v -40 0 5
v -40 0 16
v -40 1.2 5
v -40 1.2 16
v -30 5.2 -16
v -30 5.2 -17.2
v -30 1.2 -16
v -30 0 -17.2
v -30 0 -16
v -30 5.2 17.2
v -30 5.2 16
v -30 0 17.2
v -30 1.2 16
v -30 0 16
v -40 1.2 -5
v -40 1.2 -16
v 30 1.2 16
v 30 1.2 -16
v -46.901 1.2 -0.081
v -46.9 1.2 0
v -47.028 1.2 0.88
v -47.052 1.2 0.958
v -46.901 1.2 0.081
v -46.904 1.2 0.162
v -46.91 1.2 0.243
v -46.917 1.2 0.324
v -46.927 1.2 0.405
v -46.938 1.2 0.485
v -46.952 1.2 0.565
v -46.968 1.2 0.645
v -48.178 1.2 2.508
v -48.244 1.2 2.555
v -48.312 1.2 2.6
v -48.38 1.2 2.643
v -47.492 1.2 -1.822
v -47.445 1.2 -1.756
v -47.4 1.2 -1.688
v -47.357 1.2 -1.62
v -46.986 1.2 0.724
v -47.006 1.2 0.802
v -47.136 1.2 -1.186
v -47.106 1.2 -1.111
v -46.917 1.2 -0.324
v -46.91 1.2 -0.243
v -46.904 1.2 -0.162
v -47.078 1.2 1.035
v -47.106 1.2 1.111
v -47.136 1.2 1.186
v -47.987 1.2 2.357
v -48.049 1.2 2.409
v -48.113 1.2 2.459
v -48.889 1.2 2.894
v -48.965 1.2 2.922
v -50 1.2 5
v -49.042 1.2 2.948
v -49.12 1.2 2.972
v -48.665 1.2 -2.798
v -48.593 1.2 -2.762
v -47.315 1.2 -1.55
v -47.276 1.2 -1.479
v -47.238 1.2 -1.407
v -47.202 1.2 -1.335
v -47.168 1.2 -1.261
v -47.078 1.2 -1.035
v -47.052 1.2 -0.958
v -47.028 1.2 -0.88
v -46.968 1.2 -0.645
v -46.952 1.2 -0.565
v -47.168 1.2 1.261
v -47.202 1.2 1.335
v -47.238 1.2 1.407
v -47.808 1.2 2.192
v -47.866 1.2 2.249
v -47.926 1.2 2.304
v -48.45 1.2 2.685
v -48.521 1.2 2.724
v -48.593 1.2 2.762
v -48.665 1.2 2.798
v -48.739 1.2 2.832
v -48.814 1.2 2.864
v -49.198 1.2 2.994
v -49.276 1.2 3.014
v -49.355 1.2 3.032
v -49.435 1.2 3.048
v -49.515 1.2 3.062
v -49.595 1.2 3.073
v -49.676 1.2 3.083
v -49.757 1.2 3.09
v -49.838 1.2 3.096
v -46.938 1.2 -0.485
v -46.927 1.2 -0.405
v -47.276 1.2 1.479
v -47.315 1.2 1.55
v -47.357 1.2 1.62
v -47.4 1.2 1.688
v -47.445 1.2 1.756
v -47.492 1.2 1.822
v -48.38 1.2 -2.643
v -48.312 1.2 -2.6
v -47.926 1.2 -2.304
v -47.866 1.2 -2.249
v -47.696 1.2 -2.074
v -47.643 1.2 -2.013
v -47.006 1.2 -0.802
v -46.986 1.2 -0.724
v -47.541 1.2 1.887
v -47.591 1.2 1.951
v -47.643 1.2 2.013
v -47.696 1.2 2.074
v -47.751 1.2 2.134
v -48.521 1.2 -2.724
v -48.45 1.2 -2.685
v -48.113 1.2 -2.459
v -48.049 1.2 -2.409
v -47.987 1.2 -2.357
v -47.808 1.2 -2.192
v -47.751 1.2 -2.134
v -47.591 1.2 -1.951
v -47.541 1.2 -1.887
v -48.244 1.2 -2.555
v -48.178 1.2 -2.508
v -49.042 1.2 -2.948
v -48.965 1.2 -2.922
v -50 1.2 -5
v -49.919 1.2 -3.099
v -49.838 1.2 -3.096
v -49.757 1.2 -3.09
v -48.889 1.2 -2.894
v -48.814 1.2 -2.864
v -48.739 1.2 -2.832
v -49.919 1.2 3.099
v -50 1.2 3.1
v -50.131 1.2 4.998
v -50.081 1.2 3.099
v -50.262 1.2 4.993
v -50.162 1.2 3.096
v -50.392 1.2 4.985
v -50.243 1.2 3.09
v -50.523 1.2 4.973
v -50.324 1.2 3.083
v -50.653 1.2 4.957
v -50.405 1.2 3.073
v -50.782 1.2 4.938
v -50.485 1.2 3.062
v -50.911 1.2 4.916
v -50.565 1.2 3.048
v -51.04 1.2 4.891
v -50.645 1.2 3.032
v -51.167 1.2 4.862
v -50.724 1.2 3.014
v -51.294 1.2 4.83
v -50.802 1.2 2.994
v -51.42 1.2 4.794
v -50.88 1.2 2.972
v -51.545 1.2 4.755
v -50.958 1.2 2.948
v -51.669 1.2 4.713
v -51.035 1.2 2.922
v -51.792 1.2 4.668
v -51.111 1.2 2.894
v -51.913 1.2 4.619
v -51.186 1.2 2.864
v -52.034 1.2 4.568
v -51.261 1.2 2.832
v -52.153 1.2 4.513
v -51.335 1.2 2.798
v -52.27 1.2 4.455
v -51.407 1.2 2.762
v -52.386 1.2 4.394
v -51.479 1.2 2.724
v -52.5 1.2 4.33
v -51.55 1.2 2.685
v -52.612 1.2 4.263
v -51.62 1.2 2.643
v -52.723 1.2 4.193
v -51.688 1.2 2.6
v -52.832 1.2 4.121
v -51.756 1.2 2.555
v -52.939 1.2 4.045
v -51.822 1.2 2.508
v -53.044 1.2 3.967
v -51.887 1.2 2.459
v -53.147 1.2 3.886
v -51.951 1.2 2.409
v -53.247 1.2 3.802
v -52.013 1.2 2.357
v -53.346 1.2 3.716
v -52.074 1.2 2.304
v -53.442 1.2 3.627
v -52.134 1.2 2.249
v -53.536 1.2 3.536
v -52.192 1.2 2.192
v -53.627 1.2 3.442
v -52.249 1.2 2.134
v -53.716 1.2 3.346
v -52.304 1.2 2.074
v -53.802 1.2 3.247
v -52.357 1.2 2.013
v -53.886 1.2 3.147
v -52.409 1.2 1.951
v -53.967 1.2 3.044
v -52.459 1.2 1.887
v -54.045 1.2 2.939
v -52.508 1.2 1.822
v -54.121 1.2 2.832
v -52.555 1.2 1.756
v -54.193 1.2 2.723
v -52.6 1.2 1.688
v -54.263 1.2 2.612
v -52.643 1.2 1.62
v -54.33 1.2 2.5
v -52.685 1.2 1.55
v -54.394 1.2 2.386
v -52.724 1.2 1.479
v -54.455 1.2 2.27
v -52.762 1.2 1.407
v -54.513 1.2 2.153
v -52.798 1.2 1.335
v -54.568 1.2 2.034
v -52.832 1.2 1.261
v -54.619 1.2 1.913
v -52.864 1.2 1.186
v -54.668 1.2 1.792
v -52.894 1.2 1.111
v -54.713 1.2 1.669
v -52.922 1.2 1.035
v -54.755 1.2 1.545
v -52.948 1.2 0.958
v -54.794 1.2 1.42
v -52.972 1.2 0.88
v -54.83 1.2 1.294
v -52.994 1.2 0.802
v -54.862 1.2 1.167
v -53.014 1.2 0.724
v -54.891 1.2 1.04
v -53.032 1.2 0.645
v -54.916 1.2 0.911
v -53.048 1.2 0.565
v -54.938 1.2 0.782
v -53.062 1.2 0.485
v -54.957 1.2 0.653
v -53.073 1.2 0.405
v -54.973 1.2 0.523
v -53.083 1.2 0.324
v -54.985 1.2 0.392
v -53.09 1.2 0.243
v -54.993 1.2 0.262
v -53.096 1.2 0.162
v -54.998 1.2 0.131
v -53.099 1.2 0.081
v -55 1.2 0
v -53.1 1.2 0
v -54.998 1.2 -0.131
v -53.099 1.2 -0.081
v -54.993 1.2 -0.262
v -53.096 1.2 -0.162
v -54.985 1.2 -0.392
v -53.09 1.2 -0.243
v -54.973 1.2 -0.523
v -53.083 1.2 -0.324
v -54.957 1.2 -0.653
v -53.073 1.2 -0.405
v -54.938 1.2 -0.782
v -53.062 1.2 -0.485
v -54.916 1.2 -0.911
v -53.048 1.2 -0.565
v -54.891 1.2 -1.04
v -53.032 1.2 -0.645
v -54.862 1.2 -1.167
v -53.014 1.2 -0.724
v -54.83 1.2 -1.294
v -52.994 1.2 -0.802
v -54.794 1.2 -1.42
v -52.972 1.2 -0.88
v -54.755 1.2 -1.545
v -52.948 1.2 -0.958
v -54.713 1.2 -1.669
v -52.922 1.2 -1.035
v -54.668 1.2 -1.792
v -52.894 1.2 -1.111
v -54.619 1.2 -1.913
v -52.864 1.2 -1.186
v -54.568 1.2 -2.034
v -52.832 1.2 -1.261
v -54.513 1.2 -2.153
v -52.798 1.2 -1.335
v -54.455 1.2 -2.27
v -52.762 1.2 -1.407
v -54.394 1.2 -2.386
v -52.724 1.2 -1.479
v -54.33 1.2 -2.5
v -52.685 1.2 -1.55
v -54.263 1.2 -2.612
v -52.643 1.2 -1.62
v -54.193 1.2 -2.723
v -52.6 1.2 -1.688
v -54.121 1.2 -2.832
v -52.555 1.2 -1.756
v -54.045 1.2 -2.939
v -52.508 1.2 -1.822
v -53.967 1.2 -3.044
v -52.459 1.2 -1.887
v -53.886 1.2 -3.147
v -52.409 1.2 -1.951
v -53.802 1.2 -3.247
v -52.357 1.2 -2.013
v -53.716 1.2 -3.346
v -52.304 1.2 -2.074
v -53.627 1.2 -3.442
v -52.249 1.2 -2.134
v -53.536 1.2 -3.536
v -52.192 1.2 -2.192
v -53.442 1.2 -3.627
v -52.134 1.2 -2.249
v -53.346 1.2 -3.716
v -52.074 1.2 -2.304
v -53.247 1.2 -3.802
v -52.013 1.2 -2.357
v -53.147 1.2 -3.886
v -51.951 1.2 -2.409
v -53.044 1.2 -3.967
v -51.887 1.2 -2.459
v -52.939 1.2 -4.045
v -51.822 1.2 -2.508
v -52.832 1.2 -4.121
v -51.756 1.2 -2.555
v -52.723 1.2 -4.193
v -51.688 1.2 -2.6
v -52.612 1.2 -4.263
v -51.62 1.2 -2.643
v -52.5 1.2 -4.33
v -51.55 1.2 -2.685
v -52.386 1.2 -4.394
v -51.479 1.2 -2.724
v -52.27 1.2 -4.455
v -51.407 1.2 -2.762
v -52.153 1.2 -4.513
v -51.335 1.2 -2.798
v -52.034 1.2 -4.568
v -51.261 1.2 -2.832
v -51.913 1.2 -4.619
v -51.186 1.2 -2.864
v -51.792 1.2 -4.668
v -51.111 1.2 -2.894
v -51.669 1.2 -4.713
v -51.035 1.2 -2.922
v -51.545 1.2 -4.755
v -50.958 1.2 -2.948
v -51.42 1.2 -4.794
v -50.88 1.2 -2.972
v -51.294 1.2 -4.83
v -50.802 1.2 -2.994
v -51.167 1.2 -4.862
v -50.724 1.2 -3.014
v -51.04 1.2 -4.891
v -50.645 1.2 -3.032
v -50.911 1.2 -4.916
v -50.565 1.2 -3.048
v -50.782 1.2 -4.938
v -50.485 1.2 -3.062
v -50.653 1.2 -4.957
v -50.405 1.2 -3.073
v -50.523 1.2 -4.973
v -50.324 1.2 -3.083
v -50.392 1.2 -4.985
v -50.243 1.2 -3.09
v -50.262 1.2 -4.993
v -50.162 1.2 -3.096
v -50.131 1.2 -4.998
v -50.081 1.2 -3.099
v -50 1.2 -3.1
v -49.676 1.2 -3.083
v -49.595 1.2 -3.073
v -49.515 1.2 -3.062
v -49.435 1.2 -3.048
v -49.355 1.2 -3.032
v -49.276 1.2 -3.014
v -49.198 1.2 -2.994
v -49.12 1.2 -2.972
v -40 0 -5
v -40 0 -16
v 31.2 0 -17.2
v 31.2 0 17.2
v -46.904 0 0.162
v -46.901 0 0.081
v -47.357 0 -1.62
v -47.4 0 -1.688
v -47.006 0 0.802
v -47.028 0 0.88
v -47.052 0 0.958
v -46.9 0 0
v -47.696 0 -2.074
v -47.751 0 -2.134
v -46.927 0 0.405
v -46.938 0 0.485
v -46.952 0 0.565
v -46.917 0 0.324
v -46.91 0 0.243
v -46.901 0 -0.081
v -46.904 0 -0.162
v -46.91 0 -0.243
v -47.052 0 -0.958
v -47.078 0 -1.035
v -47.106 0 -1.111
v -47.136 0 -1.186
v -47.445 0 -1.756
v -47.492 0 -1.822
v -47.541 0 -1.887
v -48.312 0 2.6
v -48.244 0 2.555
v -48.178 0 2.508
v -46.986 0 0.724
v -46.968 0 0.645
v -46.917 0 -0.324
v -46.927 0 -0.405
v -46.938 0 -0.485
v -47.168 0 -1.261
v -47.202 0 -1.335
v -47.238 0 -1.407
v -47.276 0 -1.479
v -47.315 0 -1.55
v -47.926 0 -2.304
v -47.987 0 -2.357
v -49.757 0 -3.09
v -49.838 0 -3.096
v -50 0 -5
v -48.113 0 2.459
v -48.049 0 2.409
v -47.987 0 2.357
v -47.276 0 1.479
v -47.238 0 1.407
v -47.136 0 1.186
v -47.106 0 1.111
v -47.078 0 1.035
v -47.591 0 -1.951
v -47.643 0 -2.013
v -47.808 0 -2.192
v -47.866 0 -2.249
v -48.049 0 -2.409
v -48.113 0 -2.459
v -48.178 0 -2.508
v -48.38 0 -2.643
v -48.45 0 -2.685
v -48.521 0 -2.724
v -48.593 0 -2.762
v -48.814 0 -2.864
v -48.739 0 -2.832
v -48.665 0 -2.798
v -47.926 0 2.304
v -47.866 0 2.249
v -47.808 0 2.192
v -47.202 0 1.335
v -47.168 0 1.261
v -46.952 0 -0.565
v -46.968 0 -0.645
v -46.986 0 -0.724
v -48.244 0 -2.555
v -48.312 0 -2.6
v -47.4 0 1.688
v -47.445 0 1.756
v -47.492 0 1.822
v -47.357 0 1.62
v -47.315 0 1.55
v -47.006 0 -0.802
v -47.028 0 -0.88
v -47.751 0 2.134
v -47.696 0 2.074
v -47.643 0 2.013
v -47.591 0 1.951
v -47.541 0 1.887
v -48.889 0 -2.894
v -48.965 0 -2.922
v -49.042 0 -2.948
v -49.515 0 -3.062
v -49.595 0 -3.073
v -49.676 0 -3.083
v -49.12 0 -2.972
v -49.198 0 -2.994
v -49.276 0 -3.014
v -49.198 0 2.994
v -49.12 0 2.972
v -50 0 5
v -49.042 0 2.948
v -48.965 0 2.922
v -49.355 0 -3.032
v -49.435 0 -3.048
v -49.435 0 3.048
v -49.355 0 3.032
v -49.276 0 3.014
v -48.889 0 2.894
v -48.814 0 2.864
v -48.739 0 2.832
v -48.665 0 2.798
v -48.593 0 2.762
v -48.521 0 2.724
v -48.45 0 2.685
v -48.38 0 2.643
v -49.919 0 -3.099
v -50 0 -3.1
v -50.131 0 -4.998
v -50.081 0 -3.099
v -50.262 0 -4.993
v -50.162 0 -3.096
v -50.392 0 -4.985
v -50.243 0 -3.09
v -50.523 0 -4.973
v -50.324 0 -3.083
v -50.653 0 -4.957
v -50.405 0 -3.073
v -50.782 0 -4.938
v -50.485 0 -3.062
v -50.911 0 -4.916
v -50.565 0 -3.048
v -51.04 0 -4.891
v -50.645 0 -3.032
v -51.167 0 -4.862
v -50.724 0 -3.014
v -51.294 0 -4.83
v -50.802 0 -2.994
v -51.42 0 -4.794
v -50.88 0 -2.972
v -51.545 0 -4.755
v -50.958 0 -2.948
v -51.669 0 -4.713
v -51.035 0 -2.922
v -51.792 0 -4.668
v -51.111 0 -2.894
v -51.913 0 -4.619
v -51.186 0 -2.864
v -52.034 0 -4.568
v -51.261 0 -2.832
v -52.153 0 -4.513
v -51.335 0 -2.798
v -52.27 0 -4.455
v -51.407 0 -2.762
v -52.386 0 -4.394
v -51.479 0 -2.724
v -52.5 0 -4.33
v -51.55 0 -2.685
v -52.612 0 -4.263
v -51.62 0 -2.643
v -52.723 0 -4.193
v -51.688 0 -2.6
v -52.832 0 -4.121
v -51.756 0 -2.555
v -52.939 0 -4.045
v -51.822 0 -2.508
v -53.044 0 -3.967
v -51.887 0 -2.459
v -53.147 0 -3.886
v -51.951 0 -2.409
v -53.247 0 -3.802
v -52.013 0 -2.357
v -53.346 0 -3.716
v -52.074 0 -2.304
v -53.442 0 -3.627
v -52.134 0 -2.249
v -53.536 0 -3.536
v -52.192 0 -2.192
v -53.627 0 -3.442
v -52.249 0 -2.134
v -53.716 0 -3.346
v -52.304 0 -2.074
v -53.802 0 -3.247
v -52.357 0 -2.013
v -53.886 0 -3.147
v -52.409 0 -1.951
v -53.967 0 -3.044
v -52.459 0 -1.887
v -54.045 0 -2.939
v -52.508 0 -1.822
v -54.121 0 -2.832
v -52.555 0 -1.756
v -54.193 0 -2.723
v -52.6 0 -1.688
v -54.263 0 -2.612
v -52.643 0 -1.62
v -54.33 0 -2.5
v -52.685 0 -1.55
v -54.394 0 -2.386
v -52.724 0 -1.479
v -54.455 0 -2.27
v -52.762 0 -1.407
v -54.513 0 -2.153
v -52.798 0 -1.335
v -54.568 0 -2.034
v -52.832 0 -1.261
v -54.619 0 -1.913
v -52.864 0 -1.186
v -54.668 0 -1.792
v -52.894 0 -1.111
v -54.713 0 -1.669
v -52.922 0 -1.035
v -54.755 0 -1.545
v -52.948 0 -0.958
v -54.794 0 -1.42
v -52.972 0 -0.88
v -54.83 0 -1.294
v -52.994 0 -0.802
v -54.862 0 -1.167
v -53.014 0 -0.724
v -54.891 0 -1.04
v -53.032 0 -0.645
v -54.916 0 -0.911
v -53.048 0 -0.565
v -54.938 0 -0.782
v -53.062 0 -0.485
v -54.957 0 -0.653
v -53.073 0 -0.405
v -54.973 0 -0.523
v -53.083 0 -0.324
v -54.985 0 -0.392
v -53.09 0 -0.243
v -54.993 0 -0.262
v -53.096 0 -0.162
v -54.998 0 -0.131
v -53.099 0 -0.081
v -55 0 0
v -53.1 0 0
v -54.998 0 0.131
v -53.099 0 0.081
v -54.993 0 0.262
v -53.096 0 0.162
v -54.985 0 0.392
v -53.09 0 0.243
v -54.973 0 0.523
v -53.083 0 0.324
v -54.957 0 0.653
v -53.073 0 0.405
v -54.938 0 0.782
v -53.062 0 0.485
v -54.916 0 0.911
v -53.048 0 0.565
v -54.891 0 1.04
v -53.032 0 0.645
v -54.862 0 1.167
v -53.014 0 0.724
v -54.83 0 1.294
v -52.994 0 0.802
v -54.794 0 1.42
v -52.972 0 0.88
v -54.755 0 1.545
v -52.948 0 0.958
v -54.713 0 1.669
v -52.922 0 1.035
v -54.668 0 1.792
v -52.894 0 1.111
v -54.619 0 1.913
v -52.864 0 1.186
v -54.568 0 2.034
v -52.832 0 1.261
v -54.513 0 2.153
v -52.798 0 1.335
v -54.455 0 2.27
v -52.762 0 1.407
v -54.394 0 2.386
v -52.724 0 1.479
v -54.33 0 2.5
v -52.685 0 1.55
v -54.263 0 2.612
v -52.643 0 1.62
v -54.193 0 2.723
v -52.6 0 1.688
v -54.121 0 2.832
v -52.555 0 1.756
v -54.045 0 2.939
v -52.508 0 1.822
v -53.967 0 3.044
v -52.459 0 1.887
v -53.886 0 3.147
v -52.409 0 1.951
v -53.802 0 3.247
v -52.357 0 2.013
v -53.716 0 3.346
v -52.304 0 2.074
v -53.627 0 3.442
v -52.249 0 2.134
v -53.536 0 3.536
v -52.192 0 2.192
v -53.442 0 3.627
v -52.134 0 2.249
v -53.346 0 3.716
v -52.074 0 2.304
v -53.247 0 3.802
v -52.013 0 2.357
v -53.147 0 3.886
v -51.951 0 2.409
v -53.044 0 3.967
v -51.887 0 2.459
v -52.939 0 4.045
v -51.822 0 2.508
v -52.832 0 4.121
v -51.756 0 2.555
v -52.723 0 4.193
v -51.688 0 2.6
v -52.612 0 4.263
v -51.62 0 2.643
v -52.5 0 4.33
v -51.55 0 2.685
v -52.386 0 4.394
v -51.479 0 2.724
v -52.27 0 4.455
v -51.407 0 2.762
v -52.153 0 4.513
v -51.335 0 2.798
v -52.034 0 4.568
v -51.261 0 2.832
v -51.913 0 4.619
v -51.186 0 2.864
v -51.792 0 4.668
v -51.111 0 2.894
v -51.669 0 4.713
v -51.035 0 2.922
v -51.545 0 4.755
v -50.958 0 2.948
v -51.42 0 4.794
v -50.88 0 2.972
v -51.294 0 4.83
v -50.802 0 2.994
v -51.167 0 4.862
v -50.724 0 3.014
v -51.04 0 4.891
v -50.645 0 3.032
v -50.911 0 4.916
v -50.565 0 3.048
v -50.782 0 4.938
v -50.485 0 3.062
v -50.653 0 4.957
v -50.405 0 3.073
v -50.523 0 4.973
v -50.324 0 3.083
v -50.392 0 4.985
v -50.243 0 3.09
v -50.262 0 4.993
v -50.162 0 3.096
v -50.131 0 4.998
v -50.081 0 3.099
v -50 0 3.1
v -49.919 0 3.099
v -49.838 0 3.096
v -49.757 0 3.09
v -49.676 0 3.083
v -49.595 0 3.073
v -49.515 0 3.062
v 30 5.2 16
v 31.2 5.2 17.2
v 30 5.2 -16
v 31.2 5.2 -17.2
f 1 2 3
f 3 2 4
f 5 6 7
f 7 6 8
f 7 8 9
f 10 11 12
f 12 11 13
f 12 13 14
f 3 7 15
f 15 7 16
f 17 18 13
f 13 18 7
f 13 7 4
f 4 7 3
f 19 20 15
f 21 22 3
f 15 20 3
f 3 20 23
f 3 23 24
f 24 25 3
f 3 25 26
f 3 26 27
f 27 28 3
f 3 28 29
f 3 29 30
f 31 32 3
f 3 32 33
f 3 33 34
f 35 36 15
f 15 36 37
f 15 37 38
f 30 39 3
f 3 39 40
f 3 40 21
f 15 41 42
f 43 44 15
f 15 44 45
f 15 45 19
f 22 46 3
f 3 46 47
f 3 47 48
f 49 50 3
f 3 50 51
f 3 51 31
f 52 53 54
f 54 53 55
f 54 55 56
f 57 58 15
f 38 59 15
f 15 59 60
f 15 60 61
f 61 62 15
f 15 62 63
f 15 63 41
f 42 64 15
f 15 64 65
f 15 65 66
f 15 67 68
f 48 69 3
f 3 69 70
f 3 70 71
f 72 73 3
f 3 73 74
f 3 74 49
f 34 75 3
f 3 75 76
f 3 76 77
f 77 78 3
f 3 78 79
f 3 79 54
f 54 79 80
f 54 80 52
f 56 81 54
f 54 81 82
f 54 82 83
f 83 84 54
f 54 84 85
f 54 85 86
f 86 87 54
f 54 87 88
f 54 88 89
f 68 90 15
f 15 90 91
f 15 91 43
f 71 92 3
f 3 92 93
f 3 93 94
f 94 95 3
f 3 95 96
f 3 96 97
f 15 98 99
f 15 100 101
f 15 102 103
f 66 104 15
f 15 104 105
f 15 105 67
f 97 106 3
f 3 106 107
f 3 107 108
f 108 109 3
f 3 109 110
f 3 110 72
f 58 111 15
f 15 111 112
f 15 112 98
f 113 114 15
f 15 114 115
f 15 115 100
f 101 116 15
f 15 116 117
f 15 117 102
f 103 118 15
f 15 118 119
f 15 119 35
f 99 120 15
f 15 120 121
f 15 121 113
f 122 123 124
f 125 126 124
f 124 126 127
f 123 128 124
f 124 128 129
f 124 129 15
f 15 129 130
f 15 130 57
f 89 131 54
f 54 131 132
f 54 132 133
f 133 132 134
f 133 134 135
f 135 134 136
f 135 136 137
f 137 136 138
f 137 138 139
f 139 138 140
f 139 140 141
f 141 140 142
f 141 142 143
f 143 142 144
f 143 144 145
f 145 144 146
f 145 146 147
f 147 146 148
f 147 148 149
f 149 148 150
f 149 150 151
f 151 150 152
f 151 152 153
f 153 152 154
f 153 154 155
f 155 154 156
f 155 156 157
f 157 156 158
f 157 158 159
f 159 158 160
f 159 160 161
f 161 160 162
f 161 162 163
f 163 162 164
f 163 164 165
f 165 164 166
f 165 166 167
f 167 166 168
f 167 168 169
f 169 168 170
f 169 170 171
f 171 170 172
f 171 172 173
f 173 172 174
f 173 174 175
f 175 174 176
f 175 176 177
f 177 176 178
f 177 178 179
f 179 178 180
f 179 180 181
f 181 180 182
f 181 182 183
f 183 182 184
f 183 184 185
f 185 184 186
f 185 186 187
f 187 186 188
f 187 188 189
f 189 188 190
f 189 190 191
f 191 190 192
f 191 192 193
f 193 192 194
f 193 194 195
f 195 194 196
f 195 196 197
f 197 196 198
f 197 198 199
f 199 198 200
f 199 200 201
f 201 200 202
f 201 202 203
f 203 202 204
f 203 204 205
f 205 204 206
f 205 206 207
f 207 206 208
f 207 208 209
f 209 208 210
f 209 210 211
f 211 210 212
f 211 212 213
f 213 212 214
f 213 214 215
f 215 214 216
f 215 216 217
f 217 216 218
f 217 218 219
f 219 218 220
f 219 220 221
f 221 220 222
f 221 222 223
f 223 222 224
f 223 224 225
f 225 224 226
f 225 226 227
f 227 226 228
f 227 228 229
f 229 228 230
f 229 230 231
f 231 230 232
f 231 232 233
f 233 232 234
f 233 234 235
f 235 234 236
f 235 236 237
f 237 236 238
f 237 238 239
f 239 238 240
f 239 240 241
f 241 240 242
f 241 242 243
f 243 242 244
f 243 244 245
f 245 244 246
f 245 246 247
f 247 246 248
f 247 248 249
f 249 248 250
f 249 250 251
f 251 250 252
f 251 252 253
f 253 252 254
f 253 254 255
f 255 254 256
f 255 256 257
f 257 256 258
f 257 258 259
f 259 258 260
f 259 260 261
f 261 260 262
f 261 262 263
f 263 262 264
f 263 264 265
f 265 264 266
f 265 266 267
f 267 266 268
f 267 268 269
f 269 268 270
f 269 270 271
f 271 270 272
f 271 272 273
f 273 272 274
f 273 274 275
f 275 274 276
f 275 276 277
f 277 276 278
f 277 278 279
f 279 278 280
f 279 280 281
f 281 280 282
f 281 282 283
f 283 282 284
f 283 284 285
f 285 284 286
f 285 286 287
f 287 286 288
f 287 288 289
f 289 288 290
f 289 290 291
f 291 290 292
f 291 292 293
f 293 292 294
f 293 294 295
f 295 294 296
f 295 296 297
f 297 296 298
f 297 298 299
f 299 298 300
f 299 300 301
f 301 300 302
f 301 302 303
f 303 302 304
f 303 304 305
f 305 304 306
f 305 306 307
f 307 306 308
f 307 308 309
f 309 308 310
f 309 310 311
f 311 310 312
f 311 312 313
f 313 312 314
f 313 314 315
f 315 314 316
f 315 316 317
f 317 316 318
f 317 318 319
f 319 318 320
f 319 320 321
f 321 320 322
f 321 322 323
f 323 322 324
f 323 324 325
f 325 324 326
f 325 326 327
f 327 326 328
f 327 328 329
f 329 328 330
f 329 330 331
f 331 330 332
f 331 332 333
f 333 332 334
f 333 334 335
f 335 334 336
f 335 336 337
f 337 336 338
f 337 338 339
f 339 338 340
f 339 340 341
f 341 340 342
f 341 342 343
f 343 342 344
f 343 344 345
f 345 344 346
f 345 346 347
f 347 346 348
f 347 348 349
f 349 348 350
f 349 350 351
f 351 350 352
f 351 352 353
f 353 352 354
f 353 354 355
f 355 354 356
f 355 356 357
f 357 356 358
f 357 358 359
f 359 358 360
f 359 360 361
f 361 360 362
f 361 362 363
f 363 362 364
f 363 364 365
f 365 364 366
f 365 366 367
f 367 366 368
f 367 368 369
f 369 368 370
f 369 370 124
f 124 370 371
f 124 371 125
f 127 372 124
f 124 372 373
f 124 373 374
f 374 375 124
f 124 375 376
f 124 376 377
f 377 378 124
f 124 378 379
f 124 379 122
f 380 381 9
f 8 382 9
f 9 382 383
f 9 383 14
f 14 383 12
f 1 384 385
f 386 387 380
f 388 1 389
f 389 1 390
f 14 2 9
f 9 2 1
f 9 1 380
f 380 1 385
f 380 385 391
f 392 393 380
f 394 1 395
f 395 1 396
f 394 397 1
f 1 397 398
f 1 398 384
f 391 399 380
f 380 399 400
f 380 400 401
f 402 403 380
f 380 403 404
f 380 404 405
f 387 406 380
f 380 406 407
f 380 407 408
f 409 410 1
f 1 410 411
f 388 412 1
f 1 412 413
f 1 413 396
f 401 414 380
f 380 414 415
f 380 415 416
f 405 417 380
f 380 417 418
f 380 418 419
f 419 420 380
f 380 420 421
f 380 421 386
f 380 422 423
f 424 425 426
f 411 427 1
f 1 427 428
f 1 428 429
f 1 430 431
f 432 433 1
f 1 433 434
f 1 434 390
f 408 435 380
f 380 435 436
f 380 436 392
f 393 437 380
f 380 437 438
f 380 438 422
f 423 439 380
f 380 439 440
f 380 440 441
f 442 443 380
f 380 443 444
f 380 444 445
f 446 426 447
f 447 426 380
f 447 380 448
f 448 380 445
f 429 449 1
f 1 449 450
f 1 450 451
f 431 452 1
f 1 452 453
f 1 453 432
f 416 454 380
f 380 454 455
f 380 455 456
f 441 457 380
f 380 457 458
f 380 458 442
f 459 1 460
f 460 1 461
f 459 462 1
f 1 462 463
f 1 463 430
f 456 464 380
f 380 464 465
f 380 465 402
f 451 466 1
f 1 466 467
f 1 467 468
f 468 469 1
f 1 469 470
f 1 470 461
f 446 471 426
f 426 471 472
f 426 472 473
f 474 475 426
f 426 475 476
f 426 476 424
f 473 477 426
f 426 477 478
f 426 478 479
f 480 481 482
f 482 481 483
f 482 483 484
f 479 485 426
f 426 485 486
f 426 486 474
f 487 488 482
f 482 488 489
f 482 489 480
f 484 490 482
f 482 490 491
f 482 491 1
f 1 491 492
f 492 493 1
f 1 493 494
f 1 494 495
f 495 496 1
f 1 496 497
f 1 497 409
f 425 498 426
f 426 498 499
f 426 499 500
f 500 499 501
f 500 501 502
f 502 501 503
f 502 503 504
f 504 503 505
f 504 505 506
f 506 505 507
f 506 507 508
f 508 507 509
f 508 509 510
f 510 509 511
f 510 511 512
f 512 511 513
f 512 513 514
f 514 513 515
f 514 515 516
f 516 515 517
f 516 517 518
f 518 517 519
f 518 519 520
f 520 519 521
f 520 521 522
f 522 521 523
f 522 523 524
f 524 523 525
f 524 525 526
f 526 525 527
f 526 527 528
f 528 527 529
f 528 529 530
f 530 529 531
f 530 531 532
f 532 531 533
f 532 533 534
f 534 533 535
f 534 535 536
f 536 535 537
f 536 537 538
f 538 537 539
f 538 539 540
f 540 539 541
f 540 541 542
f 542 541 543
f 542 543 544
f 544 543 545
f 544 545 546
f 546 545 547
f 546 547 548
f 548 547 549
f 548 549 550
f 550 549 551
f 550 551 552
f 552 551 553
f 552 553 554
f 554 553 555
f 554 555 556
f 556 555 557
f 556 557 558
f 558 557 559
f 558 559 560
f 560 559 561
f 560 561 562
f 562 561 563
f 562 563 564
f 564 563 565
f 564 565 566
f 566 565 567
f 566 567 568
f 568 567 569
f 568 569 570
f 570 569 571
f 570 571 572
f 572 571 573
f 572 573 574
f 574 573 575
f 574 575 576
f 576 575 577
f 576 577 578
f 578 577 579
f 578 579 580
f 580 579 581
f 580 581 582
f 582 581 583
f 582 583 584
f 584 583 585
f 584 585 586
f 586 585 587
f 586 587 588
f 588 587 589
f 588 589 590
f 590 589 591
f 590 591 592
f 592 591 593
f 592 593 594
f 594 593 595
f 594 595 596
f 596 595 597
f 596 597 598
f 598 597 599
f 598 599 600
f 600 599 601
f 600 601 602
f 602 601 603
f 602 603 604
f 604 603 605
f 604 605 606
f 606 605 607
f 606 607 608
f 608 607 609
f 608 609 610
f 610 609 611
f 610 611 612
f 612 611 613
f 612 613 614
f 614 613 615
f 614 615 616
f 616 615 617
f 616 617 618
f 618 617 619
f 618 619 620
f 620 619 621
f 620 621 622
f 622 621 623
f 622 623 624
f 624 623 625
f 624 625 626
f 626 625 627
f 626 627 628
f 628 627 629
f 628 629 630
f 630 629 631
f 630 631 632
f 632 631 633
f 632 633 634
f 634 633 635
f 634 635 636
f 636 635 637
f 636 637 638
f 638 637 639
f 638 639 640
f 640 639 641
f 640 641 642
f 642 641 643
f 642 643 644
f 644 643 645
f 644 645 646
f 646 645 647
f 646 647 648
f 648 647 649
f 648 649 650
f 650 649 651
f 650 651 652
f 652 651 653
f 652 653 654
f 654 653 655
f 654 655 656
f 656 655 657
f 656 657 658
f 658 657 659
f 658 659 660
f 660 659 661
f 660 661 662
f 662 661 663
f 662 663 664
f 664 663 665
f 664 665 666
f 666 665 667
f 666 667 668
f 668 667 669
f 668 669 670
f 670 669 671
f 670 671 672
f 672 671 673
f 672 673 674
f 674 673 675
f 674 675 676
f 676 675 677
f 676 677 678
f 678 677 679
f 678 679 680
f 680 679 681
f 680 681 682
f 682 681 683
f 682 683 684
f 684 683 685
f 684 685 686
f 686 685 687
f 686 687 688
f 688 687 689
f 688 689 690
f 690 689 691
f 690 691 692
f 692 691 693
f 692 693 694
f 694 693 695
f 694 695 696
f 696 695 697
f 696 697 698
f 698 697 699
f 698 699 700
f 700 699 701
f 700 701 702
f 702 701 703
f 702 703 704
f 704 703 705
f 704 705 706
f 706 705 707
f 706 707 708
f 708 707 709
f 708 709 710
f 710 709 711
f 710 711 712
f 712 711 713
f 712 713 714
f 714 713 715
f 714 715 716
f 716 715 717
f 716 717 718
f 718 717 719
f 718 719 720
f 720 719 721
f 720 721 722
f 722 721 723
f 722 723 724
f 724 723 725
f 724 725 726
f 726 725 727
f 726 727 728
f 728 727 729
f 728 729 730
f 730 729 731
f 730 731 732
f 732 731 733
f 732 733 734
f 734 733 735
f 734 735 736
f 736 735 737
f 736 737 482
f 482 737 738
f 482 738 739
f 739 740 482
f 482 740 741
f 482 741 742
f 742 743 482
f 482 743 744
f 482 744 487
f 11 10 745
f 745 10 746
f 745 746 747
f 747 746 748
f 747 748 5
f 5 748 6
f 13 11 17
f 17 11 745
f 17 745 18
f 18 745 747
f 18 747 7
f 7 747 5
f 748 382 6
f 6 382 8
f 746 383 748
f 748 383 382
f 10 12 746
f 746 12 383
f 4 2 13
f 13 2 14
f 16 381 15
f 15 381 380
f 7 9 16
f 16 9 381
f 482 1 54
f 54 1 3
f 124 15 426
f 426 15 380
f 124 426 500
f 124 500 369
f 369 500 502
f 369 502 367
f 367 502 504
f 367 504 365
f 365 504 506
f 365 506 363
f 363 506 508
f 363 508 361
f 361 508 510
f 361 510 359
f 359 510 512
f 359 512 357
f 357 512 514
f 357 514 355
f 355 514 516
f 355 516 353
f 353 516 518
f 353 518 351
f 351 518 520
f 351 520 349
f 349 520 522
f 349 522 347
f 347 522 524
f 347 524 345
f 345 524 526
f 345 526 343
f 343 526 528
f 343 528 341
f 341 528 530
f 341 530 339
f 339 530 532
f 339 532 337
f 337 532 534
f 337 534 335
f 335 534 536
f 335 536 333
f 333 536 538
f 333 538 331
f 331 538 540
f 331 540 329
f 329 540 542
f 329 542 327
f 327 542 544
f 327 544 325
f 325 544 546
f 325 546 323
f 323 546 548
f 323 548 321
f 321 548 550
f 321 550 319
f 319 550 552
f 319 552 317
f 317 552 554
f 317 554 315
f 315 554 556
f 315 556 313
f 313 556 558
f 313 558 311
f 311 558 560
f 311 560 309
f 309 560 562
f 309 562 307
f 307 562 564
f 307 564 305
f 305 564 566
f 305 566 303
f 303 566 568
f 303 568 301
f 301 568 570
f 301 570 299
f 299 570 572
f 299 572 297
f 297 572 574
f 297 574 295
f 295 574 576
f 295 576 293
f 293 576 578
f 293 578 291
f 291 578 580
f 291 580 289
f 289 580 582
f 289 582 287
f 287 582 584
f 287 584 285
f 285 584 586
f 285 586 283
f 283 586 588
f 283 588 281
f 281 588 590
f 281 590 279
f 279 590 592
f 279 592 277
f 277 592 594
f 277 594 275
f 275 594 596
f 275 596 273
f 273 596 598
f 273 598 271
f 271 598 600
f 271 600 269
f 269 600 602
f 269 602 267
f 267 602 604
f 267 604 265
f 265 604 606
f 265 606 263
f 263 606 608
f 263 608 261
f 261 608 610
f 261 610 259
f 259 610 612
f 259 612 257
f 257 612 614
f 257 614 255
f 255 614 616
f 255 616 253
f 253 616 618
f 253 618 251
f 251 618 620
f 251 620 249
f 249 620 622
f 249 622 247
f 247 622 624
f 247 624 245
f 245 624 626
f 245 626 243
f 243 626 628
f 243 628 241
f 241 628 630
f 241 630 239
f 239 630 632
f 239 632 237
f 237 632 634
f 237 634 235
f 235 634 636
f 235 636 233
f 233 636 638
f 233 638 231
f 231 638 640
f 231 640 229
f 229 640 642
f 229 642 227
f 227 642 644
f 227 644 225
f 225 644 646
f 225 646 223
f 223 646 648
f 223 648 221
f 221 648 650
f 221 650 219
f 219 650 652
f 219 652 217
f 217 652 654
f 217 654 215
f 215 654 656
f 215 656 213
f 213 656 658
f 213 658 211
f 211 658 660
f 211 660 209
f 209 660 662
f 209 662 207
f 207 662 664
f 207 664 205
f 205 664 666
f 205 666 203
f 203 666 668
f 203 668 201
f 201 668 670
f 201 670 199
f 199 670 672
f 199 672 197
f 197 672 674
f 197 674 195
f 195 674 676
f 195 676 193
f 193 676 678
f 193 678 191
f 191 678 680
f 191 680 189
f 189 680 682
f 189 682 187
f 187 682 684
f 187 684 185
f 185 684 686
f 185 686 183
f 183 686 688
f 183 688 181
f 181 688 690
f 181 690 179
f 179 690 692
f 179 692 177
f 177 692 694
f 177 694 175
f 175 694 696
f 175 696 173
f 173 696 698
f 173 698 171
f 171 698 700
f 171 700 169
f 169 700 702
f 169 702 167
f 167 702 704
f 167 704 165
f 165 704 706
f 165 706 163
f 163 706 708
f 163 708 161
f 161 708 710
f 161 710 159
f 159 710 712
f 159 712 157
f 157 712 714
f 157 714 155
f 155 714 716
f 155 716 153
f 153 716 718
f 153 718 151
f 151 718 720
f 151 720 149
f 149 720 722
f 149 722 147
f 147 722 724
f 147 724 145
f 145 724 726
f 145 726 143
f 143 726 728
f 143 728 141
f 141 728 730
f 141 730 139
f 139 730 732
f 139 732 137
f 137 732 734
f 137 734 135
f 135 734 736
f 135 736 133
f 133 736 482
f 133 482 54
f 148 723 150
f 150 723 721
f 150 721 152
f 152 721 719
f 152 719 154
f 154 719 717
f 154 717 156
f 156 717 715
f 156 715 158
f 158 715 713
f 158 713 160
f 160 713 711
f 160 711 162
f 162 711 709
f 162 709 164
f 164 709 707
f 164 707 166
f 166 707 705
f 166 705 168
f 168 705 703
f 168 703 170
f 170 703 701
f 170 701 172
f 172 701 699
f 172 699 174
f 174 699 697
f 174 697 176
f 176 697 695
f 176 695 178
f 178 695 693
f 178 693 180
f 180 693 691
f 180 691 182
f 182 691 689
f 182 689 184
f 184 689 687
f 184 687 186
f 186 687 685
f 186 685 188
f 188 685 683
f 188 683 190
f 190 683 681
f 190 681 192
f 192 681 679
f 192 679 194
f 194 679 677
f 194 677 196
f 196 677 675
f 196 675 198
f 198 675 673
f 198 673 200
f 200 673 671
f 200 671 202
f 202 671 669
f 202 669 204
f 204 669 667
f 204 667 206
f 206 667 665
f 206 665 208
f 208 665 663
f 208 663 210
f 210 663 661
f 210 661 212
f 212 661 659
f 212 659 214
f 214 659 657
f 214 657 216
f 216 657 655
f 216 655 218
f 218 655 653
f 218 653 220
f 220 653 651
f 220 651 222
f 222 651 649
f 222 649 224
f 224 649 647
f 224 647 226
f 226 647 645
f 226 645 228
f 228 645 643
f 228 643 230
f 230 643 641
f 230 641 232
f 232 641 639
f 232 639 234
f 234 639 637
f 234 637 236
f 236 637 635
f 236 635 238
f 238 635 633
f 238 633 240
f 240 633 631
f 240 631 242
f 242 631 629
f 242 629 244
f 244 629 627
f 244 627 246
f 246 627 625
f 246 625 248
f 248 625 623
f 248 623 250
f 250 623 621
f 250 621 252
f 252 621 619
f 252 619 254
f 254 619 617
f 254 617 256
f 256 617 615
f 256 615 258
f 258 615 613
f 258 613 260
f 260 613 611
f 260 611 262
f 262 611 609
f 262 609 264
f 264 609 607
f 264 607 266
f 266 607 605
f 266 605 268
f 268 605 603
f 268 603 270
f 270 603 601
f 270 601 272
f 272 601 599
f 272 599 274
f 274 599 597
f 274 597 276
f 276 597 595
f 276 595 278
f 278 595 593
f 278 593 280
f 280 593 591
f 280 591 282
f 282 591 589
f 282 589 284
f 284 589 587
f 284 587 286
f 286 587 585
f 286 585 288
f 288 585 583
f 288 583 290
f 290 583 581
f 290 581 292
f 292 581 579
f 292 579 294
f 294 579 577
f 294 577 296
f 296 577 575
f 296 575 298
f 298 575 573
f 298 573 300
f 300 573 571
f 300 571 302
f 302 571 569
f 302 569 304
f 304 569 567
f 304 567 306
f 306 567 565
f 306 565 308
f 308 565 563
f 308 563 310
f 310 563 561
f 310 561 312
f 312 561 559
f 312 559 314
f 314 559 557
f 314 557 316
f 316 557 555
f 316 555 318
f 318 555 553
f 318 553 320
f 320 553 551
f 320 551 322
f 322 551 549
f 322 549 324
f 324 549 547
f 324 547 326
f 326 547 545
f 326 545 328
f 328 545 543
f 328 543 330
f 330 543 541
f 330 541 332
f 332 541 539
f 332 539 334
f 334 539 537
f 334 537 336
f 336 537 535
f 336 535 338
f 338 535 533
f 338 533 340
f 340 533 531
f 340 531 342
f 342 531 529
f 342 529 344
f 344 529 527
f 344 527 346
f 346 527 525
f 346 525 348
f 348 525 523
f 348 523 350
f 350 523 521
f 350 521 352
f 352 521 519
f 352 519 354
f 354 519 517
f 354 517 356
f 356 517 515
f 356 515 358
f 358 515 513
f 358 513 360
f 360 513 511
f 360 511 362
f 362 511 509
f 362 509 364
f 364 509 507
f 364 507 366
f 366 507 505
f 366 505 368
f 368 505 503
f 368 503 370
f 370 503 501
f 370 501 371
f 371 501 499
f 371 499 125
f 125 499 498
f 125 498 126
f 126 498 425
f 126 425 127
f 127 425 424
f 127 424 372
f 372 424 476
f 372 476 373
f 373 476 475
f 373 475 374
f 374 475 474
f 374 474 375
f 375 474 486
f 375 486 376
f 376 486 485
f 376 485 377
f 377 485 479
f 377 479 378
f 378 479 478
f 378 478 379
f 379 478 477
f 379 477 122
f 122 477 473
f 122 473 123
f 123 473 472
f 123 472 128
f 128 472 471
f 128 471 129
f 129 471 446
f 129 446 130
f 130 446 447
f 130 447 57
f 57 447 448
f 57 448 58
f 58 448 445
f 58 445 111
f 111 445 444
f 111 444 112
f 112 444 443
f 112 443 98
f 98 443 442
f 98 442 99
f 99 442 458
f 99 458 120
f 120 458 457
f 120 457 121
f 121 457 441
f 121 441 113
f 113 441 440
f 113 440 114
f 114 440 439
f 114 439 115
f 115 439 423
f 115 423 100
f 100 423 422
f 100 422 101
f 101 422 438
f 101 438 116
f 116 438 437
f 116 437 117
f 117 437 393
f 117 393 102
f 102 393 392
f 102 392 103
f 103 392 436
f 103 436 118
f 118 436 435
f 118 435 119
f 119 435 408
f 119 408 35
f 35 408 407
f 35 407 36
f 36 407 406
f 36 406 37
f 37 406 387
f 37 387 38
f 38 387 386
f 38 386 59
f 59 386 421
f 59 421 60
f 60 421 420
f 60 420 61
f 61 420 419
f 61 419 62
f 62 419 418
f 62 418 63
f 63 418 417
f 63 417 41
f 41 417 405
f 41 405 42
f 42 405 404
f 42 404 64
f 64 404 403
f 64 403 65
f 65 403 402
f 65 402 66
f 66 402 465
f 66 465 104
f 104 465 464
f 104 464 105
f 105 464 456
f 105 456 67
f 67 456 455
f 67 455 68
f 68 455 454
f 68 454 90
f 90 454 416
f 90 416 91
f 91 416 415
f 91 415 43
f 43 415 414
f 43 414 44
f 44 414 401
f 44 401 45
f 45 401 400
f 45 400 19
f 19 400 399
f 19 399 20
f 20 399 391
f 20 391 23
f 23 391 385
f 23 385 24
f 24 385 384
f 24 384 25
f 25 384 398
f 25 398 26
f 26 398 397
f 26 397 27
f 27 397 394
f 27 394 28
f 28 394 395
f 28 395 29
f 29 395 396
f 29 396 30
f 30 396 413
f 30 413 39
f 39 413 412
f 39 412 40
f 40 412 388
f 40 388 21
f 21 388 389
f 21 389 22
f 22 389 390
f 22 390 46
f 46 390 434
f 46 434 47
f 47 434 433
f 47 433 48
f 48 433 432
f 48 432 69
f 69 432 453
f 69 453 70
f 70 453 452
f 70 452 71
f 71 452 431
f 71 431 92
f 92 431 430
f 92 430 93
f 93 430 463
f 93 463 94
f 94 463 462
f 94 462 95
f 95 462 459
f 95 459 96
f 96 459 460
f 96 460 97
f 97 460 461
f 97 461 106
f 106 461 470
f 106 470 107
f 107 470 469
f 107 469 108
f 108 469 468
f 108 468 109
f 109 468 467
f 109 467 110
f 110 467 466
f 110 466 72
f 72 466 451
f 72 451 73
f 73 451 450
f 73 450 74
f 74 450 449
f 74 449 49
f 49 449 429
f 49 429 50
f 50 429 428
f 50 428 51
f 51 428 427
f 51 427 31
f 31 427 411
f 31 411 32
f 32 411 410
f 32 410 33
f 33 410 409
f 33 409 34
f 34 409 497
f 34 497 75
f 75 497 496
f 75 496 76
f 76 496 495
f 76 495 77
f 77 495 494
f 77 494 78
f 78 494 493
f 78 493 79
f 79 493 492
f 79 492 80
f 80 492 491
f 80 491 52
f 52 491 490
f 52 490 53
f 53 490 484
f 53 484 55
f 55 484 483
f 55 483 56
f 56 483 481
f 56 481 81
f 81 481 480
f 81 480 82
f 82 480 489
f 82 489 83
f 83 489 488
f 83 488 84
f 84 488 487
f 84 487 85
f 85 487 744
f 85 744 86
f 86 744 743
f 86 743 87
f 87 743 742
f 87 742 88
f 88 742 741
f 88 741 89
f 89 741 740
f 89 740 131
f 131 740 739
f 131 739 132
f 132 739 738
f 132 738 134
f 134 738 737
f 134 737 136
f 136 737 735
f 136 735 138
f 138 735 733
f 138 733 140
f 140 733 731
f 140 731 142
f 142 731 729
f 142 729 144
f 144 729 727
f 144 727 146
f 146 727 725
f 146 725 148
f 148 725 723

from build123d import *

# Parameters (mm, degrees)
SKETCH1_W           = 60
SKETCH1_H           = 32
BOSS_EXTRUDE1_DEPTH = 1.2
BOSS_EXTRUDE2_DEPTH = 5.2
SKETCH3_W           = 10
SKETCH3_H           = 32
BOSS_EXTRUDE3_DEPTH = 1.2
SKETCH4_W           = 15
SKETCH4_H           = 10
BOSS_EXTRUDE4_DEPTH = 1.2
FILLET1_R           = 5
CUT_EXTRUDE1_REACH  = 59.861
SKETCH5_R           = 3.1


with BuildPart() as part:
    # Sketch1 → Boss-Extrude1 (new body)
    with BuildSketch(Plane(origin=(0, 0, 0), x_dir=(1, 0, 0), z_dir=(0, 1, 0))):
        Rectangle(SKETCH1_W, SKETCH1_H)
    extrude(amount=BOSS_EXTRUDE1_DEPTH)

    # Sketch2 → Boss-Extrude2 (add)
    with BuildSketch(Plane.XZ):
        Polygon((-30, -17.2), (31.2, -17.2), (31.2, 17.2), (-30, 17.2), (-30, 16), (30, 16), (30, -16), (-30, -16), align=None)
    extrude(amount=-BOSS_EXTRUDE2_DEPTH)

    # Sketch3 → Boss-Extrude3 (add)
    with BuildSketch(Plane.XZ):
        with Locations((-35, 0)):
            Rectangle(SKETCH3_W, SKETCH3_H)
    extrude(amount=-BOSS_EXTRUDE3_DEPTH)

    # Sketch4 → Boss-Extrude4 (add)
    with BuildSketch(Plane.XZ):
        with Locations((-47.5, 0)):
            Rectangle(SKETCH4_W, SKETCH4_H)
    extrude(amount=-BOSS_EXTRUDE4_DEPTH)

    # Fillet1
    fillet1_edges = [part.edges().sort_by_distance(p)[0] for p in [
        (-55, 0.6, 5),
        (-55, 0.6, -5),
    ]]
    fillet(fillet1_edges, radius=FILLET1_R - 0.0001)  # a hair under: the kernel refuses the full size

    # Sketch5 → Cut-Extrude1 (cut, up to next)
    with BuildSketch(Plane.XZ, mode=Mode.PRIVATE) as cut_extrude1_sk1:
        with Locations(Location((-50, 0, 0), (0, 0, 270))):
            Circle(SKETCH5_R)
    cut_extrude1_tool1 = extrude(cut_extrude1_sk1.sketch, amount=-CUT_EXTRUDE1_REACH, mode=Mode.PRIVATE) & part.part
    add(cut_extrude1_tool1.solids().sort_by_distance((-50, 0, 0))[0], mode=Mode.SUBTRACT)


solid = part.part
